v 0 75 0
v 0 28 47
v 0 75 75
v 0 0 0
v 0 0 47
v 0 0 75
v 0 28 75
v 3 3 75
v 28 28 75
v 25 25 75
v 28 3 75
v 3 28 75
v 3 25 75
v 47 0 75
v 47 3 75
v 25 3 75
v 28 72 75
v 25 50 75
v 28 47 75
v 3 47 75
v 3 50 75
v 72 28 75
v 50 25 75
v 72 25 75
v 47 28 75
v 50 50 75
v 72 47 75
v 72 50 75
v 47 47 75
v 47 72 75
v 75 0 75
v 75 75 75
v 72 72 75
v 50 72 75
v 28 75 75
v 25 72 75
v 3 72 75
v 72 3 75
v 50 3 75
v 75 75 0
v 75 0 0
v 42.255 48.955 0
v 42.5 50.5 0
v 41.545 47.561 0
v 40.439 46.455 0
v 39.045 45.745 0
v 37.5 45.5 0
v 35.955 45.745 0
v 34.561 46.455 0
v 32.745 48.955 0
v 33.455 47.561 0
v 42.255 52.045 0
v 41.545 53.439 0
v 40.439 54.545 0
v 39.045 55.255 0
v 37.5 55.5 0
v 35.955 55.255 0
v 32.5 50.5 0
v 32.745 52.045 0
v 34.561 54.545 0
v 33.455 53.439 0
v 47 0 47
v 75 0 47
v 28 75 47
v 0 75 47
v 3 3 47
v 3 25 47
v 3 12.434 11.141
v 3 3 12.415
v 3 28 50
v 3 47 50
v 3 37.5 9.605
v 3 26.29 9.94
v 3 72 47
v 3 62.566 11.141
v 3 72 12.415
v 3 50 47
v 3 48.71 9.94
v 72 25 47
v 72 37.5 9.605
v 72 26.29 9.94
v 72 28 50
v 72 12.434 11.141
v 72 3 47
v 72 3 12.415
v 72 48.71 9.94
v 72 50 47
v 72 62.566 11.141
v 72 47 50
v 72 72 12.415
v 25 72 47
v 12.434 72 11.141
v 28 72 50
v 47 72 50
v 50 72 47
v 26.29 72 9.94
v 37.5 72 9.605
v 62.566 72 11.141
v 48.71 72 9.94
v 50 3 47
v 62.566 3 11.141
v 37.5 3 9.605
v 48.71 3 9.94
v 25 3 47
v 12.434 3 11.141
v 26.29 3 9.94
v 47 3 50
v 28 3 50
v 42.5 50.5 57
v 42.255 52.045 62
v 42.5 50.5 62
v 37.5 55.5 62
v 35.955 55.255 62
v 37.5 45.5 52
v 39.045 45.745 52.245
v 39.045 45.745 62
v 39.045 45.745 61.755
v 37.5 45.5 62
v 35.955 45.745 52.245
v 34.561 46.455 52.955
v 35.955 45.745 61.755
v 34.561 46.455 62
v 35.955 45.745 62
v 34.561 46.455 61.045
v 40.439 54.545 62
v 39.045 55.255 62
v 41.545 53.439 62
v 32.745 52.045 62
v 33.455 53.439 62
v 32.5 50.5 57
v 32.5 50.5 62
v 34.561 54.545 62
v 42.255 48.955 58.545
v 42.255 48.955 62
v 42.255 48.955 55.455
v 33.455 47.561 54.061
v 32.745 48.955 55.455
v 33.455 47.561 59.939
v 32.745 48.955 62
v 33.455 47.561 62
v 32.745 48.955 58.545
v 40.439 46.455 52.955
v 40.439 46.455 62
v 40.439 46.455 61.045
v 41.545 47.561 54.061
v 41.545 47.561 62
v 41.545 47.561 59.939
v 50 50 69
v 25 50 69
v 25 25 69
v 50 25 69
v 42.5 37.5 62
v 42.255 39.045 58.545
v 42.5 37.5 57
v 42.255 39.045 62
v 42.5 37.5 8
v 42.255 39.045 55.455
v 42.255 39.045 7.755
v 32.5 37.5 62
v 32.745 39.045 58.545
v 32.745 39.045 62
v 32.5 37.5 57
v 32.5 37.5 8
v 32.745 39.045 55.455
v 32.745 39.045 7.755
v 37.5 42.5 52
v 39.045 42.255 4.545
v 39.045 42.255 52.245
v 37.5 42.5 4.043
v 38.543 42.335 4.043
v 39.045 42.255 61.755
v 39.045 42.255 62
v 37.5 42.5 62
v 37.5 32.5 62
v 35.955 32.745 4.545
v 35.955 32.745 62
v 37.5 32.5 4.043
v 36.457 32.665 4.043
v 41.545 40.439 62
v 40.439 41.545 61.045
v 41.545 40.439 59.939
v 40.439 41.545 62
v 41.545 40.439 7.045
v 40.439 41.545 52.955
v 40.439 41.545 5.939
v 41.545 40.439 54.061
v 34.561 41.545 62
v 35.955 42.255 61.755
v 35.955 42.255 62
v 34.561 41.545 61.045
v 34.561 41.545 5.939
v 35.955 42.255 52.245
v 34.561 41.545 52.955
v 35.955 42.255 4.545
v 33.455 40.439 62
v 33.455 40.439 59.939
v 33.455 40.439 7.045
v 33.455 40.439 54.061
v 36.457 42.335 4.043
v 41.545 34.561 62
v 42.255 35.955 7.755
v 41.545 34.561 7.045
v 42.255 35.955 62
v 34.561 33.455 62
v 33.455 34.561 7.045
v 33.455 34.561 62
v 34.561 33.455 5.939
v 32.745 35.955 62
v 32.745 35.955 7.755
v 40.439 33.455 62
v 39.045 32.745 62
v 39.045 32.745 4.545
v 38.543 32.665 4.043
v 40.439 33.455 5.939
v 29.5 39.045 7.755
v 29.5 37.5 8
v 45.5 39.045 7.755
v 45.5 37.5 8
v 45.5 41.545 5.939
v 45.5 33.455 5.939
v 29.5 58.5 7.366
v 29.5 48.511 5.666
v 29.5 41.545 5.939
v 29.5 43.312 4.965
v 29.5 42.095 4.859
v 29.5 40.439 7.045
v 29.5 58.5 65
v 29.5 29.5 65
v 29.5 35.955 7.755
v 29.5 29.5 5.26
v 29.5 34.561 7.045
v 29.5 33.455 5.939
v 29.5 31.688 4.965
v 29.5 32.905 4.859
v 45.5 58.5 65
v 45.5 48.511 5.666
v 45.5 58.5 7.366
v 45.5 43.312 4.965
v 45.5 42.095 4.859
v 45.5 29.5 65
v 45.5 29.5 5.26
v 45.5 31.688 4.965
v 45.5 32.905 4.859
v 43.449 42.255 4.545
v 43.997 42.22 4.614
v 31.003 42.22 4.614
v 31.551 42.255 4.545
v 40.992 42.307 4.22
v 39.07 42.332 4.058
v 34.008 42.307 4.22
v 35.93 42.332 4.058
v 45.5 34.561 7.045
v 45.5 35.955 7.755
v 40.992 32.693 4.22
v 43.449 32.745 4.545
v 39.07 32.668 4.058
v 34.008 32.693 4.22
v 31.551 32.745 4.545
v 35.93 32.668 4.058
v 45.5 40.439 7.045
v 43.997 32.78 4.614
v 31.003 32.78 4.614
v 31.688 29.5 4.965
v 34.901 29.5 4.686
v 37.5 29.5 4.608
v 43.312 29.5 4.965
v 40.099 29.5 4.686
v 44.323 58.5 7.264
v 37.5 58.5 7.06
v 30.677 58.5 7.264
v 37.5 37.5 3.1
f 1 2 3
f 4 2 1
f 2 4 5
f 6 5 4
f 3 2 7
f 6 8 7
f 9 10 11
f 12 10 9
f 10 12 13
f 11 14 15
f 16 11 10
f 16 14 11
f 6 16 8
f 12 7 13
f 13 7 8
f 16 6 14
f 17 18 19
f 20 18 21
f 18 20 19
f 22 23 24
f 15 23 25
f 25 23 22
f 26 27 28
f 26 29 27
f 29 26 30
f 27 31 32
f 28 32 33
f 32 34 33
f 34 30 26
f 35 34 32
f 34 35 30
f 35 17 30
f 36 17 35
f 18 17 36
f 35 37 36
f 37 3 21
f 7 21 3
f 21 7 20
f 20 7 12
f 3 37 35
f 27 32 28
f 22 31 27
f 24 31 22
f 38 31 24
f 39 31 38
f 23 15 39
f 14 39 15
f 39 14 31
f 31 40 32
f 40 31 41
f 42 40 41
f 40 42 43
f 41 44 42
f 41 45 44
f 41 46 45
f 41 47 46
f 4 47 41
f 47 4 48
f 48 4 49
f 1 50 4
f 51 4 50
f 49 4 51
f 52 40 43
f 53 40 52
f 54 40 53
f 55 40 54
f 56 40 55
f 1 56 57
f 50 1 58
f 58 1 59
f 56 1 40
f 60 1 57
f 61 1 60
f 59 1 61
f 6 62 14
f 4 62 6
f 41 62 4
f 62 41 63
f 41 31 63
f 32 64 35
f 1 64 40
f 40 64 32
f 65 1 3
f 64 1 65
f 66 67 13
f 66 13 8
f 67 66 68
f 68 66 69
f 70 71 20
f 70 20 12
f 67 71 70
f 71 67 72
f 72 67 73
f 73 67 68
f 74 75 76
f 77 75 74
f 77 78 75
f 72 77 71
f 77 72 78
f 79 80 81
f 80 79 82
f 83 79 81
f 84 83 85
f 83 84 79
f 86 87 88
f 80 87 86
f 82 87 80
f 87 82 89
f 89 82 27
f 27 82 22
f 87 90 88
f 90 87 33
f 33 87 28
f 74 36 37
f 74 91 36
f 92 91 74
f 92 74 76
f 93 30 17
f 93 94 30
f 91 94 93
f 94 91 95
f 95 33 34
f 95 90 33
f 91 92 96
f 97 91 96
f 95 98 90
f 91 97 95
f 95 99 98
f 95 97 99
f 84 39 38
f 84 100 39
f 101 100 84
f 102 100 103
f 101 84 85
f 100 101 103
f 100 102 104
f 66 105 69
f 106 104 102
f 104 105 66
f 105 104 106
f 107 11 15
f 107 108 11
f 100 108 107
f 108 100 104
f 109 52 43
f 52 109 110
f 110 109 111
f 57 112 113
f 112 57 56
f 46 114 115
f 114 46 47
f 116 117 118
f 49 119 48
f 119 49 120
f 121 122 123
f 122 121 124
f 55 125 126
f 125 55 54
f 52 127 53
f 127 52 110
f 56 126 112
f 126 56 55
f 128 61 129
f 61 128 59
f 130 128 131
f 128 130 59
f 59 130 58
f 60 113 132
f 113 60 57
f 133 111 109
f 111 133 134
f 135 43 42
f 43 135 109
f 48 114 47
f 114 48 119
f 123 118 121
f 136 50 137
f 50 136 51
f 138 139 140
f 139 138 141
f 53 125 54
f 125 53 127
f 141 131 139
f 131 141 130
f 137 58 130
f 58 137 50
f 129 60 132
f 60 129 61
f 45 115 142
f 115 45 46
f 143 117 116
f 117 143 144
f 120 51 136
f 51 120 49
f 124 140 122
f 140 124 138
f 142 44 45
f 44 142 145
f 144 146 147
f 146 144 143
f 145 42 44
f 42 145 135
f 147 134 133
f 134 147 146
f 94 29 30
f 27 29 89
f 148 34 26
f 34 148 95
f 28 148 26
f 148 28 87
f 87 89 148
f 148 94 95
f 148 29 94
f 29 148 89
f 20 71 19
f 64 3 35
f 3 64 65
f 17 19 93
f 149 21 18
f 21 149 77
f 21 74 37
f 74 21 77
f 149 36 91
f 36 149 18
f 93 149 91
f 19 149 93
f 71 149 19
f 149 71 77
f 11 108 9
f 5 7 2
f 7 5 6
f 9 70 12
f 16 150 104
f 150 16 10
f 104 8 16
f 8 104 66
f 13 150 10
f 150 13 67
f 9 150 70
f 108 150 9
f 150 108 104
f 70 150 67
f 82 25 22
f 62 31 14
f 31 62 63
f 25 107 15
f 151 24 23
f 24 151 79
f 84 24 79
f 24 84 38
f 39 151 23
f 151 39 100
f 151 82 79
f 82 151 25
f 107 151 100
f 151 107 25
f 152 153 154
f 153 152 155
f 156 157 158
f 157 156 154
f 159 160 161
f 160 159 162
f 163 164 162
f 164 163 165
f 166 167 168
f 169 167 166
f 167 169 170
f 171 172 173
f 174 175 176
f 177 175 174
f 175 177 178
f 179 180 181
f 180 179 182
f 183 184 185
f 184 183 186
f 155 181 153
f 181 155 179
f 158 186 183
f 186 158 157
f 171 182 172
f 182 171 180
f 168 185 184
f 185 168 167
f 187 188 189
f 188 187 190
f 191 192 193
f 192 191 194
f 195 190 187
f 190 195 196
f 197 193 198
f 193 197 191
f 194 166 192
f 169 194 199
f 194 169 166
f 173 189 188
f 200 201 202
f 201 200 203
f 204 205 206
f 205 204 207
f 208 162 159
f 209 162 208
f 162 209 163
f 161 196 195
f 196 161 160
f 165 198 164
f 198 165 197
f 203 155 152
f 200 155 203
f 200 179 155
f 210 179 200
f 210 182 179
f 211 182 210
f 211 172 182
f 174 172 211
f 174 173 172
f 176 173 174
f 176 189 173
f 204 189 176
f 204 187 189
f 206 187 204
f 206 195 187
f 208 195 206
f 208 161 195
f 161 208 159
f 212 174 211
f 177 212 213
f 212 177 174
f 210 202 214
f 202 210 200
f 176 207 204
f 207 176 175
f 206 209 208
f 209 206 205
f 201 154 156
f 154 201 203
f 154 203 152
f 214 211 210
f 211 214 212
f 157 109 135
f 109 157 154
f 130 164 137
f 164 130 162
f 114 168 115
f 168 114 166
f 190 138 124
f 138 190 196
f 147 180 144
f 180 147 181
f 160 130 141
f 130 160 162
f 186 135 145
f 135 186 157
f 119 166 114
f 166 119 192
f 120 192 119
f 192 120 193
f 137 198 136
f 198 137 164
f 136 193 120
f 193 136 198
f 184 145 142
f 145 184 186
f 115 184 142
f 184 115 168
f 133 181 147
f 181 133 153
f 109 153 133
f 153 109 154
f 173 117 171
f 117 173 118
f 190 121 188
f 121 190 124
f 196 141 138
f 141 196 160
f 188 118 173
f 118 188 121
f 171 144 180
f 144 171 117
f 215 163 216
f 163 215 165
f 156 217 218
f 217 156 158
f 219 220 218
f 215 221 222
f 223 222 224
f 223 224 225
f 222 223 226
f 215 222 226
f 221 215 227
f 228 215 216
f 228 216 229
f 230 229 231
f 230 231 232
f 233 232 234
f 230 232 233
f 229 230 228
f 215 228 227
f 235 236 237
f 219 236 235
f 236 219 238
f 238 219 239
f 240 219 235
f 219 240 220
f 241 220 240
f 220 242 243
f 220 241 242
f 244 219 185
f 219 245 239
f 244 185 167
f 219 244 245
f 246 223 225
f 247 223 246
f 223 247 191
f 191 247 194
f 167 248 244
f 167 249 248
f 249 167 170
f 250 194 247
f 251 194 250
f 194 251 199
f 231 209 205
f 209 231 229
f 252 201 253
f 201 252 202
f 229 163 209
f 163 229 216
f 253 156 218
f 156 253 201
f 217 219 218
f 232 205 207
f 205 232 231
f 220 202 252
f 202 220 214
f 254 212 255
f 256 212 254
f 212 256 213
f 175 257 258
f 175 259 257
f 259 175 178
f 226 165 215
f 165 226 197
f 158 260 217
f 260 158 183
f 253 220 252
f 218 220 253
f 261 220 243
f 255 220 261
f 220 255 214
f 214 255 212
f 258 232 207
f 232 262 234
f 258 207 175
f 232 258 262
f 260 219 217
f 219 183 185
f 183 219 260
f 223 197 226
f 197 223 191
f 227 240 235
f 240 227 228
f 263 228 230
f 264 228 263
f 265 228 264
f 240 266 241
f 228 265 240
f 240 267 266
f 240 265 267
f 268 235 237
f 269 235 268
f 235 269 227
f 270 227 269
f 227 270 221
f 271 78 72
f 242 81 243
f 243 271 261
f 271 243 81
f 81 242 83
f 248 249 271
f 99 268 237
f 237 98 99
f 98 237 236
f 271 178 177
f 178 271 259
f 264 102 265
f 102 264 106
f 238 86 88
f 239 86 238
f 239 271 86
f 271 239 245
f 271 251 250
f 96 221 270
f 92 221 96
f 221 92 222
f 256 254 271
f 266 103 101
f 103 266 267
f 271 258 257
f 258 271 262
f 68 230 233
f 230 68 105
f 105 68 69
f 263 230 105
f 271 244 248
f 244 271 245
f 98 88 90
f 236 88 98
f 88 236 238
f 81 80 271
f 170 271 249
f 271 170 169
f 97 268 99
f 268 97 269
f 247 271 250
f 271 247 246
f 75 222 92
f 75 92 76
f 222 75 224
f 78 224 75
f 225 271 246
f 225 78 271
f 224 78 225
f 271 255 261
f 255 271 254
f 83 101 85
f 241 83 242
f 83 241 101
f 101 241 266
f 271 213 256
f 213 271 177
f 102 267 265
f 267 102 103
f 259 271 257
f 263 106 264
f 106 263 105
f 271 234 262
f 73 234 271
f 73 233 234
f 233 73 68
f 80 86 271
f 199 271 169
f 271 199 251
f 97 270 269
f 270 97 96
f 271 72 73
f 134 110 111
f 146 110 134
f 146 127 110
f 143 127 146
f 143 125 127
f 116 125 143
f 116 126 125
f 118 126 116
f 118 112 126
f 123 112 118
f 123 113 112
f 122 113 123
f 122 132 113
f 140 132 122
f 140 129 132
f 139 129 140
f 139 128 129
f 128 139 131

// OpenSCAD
// file: cup_base.scad
include <variables.scad>;

cup_base();

module cup_base() {
     difference() {
          // make a hole on cup_base because openscad seems not to be able to substract an object
          // from an included object
          shell();
          translate([outer_size/2, outer_size/2+pipe_y-pipe_d-thickness*2, 0]) {
               cylinder(d1=pipe_d, d2=pipe_d, h=thickness);
          }
     }
     holders();
}

module shell() {
     difference() {
          cube(outer_size);
          translate([thickness,thickness,thickness])
               cube([outer_size-thickness*2, outer_size-thickness*2, outer_size-thickness]);
     }
}

holder_size = 28;
holder_inner_size = holder_size - thickness*2;
points = [[0,0,0], [holder_size,0,0], [0,holder_size,0], [0,0,holder_size]];
faces = [[0,1,2], [0,3,1], [0,2,3], [1,3,2]];

module holder() {
     difference() {
          cube([holder_size, holder_size, holder_size]);
          translate([thickness, thickness, 0]) {
               cube([holder_inner_size, holder_inner_size, holder_size]);
          }
          polyhedron(points, faces);
     }
}

module holders() {
     translate([outer_size/2, outer_size/2, outer_size-holder_size]) {
          for(angle=[0:90:359]) {
               rotate(angle) {
                    translate([outer_size/2-holder_size, outer_size/2-holder_size, 0]) {
                         holder();
                    }
               }
          }
     }
}
// file: variables.scad
$fn=20;
outer_size = 75;
thickness = 3;
pipe_d = 10;
pipe_x = pipe_d + thickness*2;
pipe_y = pipe_d*2 + thickness*3;
pipe_z = outer_size - thickness - 10;
// main file
include <variables.scad>;
include <cup_base.scad>;

cup_with_pipe();

module cup_with_pipe() {
     difference() {
          union() {
               cup_base();
               pipe_out();
               ditch();
          }
          translate([outer_size/2, outer_size/2+pipe_y-pipe_d-thickness*2, 0]) {
               cylinder(d1=pipe_d, d2=pipe_d, h=pipe_z);
          }
     }
}

module pipe_out() {
     translate([outer_size/2-pipe_x/2, outer_size/2-pipe_x/2, thickness]) difference() {
          cube([pipe_x, pipe_y, pipe_z]);
          translate([pipe_d/2+thickness, pipe_d/2+thickness, 0]) {
               cylinder(d1=pipe_d, d2=pipe_d, h=pipe_z-thickness);
               translate([0, 0, pipe_z-pipe_d/2-thickness]) rotate([-90,0,0]) {
                    cylinder(d1=pipe_d, d2=pipe_d, h=pipe_y-pipe_d-thickness*2);
               }
               translate([-pipe_x/2, 0, 0]) rotate([0, 90, 0]) {
                    cylinder(d1=pipe_d, d2=pipe_d, h=pipe_x);
               }
          }
     }
}

ditch_depth = 10;

module ditch() {
     translate([0, 0, thickness]) difference() {
          cube([outer_size, outer_size, ditch_depth]);
          translate([outer_size/2, outer_size/2, ditch_depth+0.1]) rotate([0, 180, 0]) {
               cylinder(h=ditch_depth, d1=outer_size*sqrt(2), d2=0);
          }
     }
}
